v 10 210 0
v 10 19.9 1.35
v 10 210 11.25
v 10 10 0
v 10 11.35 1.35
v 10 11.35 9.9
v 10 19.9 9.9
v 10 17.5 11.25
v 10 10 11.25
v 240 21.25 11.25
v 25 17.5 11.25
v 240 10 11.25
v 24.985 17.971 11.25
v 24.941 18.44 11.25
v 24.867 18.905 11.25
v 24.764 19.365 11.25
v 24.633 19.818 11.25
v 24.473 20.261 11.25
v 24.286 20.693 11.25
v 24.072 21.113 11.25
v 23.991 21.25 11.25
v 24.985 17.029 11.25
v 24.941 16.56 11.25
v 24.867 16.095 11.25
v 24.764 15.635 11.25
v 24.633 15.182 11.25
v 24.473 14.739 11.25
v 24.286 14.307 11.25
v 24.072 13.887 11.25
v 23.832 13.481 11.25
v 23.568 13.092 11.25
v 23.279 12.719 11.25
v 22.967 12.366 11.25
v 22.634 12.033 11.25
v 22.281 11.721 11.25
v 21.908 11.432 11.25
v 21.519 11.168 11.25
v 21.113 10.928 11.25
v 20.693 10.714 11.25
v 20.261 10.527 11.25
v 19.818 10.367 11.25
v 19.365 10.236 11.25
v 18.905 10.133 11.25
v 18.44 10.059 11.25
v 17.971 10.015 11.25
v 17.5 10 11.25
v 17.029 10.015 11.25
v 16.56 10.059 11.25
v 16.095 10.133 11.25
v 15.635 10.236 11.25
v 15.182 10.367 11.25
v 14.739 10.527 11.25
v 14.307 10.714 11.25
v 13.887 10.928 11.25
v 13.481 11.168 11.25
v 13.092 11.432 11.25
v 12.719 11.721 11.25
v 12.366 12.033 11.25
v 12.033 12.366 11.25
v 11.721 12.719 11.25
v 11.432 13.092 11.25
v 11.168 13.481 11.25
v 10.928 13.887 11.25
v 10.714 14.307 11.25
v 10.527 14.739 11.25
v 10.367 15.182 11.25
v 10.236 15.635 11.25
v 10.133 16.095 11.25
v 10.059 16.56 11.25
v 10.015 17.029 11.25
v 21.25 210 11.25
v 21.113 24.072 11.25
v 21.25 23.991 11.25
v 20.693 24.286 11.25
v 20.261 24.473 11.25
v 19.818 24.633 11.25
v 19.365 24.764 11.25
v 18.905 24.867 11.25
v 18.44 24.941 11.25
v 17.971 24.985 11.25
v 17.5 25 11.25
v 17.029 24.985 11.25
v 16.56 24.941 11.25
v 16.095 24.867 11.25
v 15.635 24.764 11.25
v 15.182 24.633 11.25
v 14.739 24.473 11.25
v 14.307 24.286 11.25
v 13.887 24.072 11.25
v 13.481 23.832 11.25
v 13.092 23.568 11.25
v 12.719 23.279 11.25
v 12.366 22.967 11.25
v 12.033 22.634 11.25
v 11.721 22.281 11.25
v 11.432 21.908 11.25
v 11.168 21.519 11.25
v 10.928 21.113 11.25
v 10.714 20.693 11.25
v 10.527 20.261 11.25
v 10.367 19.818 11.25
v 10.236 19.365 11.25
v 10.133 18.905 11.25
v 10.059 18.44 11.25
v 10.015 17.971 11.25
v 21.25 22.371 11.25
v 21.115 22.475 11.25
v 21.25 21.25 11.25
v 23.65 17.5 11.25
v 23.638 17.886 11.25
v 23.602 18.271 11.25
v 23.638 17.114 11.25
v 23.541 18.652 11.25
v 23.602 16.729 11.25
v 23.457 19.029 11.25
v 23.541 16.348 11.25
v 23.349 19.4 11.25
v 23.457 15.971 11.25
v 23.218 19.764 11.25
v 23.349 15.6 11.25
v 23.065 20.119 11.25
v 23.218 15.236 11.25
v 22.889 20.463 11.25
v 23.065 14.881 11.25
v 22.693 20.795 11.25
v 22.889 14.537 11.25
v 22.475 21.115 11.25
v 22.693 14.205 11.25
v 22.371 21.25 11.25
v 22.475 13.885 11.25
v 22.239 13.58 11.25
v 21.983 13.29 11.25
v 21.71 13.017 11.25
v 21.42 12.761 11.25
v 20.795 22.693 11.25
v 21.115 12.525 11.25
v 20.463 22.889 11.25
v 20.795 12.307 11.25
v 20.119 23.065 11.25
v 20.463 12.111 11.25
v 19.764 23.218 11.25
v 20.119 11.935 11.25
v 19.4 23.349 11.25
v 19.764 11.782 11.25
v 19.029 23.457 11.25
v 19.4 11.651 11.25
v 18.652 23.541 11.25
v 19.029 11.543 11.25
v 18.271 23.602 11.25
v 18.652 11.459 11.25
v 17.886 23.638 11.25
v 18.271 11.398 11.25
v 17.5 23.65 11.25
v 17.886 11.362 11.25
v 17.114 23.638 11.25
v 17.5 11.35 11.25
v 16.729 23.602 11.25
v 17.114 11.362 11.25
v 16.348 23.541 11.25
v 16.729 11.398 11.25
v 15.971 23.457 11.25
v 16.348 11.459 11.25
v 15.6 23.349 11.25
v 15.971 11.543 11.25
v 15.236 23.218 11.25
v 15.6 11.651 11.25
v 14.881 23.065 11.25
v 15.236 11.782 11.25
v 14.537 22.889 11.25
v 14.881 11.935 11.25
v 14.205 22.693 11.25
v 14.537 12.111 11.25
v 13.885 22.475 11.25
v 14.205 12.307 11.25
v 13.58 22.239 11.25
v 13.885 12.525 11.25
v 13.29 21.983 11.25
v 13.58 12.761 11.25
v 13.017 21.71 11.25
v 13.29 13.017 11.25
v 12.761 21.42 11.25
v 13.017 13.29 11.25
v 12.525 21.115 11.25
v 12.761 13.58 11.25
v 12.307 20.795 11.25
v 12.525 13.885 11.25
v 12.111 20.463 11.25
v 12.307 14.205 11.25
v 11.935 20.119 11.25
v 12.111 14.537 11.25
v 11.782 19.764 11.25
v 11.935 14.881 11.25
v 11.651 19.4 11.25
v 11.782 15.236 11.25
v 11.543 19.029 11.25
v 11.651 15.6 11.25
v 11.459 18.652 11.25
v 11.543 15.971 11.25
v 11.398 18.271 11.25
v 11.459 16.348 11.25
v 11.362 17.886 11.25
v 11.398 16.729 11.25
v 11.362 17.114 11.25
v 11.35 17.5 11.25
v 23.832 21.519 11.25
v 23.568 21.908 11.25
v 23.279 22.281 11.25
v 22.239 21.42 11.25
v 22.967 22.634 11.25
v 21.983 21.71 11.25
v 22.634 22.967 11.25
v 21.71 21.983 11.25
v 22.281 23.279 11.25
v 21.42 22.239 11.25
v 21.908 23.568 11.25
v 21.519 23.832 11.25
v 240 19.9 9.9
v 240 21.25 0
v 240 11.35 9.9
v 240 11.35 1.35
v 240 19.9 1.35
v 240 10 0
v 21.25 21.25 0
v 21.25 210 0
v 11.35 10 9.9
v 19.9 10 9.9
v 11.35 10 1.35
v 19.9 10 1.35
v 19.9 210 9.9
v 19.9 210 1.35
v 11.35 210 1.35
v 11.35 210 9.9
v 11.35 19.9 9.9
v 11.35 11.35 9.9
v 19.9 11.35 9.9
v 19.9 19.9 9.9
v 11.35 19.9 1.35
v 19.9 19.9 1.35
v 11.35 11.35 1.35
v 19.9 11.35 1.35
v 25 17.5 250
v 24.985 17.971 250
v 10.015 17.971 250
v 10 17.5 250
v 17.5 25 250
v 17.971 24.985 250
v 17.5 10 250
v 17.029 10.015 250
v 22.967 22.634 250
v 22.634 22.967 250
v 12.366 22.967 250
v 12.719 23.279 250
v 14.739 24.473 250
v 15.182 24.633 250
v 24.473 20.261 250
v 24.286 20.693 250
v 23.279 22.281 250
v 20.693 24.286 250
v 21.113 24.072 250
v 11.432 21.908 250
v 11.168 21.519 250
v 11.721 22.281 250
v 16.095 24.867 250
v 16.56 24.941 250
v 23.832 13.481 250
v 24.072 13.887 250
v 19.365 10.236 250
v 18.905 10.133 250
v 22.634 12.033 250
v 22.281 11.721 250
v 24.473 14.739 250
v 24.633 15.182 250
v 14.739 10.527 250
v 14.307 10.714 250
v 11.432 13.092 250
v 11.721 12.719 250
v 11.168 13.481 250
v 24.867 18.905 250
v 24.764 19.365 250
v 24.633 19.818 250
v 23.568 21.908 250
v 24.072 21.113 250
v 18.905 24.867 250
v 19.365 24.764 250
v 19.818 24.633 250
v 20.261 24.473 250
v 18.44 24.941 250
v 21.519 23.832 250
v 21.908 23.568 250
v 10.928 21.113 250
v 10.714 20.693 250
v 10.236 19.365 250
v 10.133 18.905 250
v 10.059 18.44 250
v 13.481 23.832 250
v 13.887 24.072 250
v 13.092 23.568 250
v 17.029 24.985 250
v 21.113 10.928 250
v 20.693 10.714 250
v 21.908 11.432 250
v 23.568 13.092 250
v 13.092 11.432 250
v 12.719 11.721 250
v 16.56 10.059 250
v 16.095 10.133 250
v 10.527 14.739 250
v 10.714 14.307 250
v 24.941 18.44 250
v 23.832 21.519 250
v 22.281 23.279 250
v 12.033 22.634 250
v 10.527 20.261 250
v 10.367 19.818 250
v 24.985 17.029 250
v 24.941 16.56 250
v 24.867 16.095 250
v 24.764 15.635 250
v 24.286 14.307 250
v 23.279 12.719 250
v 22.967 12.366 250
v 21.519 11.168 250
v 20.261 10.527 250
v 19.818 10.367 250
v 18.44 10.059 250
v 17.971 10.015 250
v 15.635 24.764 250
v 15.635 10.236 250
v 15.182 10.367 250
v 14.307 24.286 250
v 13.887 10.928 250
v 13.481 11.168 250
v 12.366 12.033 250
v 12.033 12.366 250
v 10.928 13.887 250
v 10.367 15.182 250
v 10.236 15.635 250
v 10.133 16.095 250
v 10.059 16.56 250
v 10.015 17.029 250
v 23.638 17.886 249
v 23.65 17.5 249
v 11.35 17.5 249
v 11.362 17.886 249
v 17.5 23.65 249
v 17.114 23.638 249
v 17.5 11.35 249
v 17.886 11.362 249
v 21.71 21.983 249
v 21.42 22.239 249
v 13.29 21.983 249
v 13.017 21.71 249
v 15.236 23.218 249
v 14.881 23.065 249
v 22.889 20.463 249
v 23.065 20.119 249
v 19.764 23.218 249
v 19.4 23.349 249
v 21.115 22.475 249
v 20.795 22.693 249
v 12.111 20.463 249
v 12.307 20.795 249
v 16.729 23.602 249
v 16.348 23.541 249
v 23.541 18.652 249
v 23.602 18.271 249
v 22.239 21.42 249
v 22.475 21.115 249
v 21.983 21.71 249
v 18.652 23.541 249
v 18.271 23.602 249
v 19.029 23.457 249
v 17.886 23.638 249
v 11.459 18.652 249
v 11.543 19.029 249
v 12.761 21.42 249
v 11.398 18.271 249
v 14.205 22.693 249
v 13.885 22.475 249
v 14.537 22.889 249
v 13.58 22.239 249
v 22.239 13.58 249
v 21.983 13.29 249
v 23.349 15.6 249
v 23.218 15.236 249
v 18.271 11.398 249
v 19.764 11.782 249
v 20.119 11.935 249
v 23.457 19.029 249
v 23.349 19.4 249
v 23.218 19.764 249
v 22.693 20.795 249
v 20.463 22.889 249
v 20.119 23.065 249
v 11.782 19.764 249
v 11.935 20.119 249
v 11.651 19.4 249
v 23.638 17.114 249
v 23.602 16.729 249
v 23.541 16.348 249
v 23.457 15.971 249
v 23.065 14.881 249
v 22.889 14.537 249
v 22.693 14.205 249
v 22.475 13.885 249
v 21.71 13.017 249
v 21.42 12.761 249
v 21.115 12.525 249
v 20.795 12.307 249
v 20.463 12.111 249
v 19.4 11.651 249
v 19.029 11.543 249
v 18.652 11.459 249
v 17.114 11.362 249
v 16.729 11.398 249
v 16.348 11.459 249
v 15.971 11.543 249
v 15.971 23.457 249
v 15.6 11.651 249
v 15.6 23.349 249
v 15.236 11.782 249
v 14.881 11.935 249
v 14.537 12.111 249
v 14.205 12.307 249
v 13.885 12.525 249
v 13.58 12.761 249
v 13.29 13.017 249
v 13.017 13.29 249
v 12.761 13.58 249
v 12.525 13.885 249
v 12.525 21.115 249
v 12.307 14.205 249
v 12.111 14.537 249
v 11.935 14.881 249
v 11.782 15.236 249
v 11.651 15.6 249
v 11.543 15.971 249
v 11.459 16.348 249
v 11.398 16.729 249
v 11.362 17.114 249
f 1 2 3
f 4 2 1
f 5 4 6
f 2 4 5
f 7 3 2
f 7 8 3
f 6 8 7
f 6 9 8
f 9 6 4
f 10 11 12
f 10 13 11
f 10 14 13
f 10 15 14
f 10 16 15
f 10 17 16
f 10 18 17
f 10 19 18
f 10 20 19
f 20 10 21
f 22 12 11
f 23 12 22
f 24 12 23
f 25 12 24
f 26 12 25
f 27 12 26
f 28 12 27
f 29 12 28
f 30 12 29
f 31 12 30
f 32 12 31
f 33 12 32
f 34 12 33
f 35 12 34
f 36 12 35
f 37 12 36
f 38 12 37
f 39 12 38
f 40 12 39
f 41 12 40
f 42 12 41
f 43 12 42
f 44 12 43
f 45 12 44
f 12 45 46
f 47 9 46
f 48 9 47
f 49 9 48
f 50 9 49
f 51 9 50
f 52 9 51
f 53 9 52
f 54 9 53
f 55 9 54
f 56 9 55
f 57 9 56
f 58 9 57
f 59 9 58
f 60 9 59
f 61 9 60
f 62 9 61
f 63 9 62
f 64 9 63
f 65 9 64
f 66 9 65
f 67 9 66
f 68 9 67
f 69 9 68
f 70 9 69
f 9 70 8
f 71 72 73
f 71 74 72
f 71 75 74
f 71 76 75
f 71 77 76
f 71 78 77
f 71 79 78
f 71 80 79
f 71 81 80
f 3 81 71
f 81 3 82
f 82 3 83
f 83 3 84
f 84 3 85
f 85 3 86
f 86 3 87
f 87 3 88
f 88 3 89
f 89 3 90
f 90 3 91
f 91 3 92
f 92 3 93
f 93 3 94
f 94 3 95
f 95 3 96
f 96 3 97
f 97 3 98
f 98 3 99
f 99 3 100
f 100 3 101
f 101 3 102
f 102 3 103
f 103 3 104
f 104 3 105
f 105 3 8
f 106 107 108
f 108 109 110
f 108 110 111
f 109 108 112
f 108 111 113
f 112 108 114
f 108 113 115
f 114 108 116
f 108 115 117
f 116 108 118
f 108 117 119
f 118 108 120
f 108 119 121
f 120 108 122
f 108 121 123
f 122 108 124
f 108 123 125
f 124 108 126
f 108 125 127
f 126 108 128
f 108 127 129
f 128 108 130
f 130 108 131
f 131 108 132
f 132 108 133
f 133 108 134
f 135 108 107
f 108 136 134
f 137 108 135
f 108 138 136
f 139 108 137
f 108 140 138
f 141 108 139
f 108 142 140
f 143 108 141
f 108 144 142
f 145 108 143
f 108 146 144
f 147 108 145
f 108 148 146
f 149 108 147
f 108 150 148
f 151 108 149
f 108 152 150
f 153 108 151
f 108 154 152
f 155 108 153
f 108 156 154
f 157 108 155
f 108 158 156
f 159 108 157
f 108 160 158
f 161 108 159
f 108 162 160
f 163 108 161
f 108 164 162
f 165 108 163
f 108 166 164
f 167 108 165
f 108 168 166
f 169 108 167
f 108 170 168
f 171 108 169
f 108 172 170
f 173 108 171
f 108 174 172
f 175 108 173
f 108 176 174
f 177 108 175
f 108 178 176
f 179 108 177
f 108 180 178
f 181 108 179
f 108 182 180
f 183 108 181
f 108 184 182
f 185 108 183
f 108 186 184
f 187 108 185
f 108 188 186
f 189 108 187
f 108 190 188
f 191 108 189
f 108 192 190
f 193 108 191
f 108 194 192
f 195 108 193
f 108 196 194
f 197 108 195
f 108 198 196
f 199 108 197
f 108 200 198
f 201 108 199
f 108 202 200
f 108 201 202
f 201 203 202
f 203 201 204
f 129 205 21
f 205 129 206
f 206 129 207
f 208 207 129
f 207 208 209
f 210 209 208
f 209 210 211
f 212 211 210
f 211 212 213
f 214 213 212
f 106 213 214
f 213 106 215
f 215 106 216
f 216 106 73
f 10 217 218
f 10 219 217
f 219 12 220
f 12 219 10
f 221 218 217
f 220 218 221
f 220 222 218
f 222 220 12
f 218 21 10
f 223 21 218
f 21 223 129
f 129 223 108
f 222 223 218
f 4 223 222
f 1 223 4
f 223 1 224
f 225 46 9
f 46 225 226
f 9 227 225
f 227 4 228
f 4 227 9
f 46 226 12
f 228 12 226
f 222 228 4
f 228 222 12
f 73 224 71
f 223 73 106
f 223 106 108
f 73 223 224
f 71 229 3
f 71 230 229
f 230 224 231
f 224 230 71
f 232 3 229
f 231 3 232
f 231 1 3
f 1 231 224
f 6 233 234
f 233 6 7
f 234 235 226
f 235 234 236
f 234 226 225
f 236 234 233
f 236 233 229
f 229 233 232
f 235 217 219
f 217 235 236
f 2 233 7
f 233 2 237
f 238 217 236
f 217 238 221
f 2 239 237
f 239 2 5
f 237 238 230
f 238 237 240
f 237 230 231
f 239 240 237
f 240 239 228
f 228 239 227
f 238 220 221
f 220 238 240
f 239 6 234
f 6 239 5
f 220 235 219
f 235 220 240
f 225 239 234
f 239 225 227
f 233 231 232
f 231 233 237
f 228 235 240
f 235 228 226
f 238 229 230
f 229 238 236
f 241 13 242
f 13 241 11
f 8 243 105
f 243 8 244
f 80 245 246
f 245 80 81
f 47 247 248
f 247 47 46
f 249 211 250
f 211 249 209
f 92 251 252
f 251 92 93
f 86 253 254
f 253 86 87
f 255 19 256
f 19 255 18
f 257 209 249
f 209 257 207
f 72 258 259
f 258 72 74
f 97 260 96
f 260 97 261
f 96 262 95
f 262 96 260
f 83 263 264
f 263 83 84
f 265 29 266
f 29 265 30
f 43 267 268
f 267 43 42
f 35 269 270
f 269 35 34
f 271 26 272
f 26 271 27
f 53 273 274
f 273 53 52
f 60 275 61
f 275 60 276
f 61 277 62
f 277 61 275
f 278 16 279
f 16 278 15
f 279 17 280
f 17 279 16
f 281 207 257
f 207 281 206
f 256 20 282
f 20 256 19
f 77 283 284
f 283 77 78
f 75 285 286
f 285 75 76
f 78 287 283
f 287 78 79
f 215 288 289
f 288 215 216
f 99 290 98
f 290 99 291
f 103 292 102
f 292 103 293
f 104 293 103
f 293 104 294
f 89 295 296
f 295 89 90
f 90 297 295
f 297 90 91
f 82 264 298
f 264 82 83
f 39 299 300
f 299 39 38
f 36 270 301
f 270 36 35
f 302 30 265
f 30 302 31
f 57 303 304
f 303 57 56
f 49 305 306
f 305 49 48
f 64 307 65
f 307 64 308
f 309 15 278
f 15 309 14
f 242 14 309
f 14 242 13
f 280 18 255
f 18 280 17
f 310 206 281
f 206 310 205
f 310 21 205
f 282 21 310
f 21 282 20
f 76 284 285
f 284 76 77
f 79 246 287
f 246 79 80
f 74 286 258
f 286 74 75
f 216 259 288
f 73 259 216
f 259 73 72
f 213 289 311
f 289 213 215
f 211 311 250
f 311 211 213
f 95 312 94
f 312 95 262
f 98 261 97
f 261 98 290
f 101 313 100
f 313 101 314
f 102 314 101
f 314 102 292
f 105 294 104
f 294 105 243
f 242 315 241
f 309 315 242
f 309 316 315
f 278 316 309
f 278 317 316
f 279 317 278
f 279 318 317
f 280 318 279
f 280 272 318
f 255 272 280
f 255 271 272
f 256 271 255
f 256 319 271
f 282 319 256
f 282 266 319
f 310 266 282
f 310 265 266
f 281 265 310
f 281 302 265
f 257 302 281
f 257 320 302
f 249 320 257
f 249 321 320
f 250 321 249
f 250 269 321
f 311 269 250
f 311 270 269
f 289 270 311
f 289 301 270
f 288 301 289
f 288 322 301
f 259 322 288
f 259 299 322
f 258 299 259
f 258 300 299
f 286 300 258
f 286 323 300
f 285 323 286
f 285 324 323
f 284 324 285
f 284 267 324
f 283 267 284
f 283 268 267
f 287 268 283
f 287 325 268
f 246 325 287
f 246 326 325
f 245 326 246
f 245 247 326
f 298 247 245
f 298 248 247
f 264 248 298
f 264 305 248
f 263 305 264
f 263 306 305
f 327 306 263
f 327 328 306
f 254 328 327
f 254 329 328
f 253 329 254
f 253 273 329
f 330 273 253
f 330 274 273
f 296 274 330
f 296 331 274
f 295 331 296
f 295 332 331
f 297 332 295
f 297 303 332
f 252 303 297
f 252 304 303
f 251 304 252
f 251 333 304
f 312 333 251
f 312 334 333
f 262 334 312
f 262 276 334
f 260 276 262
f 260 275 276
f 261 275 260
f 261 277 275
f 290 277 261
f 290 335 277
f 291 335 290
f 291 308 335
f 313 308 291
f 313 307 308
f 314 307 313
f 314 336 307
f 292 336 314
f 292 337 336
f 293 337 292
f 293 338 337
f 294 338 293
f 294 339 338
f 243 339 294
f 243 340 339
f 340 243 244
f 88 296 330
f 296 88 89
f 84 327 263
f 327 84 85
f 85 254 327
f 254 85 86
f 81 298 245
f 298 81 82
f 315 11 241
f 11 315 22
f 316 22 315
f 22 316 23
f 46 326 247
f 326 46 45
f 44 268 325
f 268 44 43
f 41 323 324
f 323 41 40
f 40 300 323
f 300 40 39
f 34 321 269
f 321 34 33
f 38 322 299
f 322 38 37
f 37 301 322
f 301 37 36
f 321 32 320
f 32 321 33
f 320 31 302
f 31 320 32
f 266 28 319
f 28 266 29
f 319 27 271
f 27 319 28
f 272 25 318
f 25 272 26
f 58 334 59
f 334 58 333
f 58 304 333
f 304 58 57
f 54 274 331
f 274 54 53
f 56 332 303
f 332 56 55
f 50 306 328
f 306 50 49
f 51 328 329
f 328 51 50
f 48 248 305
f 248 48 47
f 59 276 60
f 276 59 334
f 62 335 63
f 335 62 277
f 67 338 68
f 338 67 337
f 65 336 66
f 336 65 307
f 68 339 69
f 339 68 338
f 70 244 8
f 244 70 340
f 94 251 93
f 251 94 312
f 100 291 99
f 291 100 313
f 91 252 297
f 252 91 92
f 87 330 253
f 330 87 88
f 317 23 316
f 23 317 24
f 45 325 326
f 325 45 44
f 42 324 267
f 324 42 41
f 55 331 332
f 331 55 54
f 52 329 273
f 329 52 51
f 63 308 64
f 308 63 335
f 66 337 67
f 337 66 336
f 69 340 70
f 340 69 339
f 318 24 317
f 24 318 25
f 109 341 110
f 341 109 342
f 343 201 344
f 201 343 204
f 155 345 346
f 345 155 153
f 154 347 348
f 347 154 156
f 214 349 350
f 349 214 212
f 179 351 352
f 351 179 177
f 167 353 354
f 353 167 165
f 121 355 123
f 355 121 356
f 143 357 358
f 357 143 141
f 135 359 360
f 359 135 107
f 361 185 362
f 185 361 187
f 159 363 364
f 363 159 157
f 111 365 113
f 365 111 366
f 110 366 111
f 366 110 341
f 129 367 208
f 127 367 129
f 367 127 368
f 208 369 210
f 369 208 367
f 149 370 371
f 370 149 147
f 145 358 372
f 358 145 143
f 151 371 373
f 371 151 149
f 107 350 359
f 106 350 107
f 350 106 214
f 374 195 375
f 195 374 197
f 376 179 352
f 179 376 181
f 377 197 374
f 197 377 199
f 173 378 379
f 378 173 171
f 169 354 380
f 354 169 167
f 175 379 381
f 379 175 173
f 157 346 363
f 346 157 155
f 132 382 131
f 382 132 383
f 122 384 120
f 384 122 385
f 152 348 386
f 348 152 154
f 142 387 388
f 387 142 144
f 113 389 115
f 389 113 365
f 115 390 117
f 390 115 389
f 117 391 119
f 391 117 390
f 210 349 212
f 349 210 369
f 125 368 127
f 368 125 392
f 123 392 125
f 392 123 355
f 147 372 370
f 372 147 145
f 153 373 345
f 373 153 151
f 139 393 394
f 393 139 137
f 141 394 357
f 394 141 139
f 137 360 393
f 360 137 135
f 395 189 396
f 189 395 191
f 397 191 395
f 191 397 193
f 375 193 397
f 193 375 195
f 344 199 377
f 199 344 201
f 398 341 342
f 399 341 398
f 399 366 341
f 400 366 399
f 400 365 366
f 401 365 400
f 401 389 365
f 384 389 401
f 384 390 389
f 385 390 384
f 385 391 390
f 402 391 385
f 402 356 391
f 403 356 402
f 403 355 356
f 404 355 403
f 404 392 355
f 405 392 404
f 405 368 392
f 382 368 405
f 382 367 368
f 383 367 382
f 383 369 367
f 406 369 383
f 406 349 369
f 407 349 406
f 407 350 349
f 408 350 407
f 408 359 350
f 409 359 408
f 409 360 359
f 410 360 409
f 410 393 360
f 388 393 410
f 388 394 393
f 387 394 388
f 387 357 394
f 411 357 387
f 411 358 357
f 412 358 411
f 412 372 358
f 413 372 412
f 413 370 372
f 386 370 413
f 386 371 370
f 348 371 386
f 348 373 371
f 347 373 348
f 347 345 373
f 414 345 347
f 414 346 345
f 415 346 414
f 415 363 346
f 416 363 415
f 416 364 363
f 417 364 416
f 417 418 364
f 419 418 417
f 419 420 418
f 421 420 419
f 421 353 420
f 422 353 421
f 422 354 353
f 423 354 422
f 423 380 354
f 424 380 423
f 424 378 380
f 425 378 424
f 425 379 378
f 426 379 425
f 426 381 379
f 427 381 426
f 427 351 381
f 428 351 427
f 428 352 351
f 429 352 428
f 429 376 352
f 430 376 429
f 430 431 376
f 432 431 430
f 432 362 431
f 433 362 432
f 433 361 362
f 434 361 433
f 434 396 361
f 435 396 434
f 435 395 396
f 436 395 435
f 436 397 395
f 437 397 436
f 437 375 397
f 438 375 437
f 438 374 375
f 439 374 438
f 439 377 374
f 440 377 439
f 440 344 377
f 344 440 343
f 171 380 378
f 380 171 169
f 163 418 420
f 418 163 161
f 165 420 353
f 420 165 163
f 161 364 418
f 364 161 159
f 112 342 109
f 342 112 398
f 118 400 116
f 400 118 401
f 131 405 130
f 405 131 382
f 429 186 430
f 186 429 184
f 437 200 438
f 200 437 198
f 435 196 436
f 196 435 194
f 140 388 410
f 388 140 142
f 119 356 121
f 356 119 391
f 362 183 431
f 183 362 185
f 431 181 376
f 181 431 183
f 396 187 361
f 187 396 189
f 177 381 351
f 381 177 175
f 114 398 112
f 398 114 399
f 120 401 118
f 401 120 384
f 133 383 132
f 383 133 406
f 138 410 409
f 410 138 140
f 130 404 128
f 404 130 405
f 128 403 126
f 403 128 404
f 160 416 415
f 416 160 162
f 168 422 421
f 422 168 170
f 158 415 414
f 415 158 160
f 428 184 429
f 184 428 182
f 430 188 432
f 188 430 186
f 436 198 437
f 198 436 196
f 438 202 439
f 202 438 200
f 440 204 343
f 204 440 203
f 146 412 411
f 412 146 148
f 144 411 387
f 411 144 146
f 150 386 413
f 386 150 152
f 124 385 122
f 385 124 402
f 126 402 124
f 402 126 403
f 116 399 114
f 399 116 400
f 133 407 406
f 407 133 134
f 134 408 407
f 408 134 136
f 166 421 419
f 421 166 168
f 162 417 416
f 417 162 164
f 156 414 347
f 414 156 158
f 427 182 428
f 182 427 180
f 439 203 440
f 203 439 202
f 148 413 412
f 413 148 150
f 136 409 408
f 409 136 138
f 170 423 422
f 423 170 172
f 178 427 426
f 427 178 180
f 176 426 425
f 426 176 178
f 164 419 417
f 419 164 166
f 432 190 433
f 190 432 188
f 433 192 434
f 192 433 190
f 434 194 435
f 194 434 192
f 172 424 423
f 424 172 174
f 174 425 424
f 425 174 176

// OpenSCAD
// Prusa Core One - Slim Safe Limit Tester (230x200x250)
$fn = 100;

build_x = 230.0; 
build_y = 200.0; 
build_z = 250.0; 

// Centering logic for the 250x220 bed
center_x = (250 / 2) - (build_x / 2);
center_y = (220 / 2) - (build_y / 2);

// 25% Reduced Profiles
beam_size = 11.25;       // Reduced from 15.0
cyl_radius = 7.5;        // Reduced from 10.0 (15mm diameter)
wall_thickness = 1.35;    // Stays at 3 perimeters for strength
cap_thickness = 1.0;    

module slim_limit_tester() {
    translate([center_x, center_y, 0]) {
        // --- 4-Wall Hollow Box Beams (Open Ends) ---
        difference() {
            union() {
                cube([build_x, beam_size, beam_size]);
                cube([beam_size, build_y, beam_size]);
            }
            union() {
                // X-axis cut
                translate([-1, wall_thickness, wall_thickness])
                    cube([build_x + 2, beam_size - (wall_thickness * 2), beam_size - (wall_thickness * 2)]);
                // Y-axis cut
                translate([wall_thickness, -1, wall_thickness])
                    cube([beam_size - (wall_thickness * 2), build_y + 2, beam_size - (wall_thickness * 2)]);
            }
        }
        // --- Slim Vertical Spire ---
        translate([cyl_radius, cyl_radius, beam_size])
        difference() {
            cylinder(h = build_z - beam_size, r = cyl_radius);
            translate([0, 0, -1])
                cylinder(h = (build_z - beam_size) - cap_thickness + 1, r = cyl_radius - wall_thickness);
        }
    }
}
slim_limit_tester();
